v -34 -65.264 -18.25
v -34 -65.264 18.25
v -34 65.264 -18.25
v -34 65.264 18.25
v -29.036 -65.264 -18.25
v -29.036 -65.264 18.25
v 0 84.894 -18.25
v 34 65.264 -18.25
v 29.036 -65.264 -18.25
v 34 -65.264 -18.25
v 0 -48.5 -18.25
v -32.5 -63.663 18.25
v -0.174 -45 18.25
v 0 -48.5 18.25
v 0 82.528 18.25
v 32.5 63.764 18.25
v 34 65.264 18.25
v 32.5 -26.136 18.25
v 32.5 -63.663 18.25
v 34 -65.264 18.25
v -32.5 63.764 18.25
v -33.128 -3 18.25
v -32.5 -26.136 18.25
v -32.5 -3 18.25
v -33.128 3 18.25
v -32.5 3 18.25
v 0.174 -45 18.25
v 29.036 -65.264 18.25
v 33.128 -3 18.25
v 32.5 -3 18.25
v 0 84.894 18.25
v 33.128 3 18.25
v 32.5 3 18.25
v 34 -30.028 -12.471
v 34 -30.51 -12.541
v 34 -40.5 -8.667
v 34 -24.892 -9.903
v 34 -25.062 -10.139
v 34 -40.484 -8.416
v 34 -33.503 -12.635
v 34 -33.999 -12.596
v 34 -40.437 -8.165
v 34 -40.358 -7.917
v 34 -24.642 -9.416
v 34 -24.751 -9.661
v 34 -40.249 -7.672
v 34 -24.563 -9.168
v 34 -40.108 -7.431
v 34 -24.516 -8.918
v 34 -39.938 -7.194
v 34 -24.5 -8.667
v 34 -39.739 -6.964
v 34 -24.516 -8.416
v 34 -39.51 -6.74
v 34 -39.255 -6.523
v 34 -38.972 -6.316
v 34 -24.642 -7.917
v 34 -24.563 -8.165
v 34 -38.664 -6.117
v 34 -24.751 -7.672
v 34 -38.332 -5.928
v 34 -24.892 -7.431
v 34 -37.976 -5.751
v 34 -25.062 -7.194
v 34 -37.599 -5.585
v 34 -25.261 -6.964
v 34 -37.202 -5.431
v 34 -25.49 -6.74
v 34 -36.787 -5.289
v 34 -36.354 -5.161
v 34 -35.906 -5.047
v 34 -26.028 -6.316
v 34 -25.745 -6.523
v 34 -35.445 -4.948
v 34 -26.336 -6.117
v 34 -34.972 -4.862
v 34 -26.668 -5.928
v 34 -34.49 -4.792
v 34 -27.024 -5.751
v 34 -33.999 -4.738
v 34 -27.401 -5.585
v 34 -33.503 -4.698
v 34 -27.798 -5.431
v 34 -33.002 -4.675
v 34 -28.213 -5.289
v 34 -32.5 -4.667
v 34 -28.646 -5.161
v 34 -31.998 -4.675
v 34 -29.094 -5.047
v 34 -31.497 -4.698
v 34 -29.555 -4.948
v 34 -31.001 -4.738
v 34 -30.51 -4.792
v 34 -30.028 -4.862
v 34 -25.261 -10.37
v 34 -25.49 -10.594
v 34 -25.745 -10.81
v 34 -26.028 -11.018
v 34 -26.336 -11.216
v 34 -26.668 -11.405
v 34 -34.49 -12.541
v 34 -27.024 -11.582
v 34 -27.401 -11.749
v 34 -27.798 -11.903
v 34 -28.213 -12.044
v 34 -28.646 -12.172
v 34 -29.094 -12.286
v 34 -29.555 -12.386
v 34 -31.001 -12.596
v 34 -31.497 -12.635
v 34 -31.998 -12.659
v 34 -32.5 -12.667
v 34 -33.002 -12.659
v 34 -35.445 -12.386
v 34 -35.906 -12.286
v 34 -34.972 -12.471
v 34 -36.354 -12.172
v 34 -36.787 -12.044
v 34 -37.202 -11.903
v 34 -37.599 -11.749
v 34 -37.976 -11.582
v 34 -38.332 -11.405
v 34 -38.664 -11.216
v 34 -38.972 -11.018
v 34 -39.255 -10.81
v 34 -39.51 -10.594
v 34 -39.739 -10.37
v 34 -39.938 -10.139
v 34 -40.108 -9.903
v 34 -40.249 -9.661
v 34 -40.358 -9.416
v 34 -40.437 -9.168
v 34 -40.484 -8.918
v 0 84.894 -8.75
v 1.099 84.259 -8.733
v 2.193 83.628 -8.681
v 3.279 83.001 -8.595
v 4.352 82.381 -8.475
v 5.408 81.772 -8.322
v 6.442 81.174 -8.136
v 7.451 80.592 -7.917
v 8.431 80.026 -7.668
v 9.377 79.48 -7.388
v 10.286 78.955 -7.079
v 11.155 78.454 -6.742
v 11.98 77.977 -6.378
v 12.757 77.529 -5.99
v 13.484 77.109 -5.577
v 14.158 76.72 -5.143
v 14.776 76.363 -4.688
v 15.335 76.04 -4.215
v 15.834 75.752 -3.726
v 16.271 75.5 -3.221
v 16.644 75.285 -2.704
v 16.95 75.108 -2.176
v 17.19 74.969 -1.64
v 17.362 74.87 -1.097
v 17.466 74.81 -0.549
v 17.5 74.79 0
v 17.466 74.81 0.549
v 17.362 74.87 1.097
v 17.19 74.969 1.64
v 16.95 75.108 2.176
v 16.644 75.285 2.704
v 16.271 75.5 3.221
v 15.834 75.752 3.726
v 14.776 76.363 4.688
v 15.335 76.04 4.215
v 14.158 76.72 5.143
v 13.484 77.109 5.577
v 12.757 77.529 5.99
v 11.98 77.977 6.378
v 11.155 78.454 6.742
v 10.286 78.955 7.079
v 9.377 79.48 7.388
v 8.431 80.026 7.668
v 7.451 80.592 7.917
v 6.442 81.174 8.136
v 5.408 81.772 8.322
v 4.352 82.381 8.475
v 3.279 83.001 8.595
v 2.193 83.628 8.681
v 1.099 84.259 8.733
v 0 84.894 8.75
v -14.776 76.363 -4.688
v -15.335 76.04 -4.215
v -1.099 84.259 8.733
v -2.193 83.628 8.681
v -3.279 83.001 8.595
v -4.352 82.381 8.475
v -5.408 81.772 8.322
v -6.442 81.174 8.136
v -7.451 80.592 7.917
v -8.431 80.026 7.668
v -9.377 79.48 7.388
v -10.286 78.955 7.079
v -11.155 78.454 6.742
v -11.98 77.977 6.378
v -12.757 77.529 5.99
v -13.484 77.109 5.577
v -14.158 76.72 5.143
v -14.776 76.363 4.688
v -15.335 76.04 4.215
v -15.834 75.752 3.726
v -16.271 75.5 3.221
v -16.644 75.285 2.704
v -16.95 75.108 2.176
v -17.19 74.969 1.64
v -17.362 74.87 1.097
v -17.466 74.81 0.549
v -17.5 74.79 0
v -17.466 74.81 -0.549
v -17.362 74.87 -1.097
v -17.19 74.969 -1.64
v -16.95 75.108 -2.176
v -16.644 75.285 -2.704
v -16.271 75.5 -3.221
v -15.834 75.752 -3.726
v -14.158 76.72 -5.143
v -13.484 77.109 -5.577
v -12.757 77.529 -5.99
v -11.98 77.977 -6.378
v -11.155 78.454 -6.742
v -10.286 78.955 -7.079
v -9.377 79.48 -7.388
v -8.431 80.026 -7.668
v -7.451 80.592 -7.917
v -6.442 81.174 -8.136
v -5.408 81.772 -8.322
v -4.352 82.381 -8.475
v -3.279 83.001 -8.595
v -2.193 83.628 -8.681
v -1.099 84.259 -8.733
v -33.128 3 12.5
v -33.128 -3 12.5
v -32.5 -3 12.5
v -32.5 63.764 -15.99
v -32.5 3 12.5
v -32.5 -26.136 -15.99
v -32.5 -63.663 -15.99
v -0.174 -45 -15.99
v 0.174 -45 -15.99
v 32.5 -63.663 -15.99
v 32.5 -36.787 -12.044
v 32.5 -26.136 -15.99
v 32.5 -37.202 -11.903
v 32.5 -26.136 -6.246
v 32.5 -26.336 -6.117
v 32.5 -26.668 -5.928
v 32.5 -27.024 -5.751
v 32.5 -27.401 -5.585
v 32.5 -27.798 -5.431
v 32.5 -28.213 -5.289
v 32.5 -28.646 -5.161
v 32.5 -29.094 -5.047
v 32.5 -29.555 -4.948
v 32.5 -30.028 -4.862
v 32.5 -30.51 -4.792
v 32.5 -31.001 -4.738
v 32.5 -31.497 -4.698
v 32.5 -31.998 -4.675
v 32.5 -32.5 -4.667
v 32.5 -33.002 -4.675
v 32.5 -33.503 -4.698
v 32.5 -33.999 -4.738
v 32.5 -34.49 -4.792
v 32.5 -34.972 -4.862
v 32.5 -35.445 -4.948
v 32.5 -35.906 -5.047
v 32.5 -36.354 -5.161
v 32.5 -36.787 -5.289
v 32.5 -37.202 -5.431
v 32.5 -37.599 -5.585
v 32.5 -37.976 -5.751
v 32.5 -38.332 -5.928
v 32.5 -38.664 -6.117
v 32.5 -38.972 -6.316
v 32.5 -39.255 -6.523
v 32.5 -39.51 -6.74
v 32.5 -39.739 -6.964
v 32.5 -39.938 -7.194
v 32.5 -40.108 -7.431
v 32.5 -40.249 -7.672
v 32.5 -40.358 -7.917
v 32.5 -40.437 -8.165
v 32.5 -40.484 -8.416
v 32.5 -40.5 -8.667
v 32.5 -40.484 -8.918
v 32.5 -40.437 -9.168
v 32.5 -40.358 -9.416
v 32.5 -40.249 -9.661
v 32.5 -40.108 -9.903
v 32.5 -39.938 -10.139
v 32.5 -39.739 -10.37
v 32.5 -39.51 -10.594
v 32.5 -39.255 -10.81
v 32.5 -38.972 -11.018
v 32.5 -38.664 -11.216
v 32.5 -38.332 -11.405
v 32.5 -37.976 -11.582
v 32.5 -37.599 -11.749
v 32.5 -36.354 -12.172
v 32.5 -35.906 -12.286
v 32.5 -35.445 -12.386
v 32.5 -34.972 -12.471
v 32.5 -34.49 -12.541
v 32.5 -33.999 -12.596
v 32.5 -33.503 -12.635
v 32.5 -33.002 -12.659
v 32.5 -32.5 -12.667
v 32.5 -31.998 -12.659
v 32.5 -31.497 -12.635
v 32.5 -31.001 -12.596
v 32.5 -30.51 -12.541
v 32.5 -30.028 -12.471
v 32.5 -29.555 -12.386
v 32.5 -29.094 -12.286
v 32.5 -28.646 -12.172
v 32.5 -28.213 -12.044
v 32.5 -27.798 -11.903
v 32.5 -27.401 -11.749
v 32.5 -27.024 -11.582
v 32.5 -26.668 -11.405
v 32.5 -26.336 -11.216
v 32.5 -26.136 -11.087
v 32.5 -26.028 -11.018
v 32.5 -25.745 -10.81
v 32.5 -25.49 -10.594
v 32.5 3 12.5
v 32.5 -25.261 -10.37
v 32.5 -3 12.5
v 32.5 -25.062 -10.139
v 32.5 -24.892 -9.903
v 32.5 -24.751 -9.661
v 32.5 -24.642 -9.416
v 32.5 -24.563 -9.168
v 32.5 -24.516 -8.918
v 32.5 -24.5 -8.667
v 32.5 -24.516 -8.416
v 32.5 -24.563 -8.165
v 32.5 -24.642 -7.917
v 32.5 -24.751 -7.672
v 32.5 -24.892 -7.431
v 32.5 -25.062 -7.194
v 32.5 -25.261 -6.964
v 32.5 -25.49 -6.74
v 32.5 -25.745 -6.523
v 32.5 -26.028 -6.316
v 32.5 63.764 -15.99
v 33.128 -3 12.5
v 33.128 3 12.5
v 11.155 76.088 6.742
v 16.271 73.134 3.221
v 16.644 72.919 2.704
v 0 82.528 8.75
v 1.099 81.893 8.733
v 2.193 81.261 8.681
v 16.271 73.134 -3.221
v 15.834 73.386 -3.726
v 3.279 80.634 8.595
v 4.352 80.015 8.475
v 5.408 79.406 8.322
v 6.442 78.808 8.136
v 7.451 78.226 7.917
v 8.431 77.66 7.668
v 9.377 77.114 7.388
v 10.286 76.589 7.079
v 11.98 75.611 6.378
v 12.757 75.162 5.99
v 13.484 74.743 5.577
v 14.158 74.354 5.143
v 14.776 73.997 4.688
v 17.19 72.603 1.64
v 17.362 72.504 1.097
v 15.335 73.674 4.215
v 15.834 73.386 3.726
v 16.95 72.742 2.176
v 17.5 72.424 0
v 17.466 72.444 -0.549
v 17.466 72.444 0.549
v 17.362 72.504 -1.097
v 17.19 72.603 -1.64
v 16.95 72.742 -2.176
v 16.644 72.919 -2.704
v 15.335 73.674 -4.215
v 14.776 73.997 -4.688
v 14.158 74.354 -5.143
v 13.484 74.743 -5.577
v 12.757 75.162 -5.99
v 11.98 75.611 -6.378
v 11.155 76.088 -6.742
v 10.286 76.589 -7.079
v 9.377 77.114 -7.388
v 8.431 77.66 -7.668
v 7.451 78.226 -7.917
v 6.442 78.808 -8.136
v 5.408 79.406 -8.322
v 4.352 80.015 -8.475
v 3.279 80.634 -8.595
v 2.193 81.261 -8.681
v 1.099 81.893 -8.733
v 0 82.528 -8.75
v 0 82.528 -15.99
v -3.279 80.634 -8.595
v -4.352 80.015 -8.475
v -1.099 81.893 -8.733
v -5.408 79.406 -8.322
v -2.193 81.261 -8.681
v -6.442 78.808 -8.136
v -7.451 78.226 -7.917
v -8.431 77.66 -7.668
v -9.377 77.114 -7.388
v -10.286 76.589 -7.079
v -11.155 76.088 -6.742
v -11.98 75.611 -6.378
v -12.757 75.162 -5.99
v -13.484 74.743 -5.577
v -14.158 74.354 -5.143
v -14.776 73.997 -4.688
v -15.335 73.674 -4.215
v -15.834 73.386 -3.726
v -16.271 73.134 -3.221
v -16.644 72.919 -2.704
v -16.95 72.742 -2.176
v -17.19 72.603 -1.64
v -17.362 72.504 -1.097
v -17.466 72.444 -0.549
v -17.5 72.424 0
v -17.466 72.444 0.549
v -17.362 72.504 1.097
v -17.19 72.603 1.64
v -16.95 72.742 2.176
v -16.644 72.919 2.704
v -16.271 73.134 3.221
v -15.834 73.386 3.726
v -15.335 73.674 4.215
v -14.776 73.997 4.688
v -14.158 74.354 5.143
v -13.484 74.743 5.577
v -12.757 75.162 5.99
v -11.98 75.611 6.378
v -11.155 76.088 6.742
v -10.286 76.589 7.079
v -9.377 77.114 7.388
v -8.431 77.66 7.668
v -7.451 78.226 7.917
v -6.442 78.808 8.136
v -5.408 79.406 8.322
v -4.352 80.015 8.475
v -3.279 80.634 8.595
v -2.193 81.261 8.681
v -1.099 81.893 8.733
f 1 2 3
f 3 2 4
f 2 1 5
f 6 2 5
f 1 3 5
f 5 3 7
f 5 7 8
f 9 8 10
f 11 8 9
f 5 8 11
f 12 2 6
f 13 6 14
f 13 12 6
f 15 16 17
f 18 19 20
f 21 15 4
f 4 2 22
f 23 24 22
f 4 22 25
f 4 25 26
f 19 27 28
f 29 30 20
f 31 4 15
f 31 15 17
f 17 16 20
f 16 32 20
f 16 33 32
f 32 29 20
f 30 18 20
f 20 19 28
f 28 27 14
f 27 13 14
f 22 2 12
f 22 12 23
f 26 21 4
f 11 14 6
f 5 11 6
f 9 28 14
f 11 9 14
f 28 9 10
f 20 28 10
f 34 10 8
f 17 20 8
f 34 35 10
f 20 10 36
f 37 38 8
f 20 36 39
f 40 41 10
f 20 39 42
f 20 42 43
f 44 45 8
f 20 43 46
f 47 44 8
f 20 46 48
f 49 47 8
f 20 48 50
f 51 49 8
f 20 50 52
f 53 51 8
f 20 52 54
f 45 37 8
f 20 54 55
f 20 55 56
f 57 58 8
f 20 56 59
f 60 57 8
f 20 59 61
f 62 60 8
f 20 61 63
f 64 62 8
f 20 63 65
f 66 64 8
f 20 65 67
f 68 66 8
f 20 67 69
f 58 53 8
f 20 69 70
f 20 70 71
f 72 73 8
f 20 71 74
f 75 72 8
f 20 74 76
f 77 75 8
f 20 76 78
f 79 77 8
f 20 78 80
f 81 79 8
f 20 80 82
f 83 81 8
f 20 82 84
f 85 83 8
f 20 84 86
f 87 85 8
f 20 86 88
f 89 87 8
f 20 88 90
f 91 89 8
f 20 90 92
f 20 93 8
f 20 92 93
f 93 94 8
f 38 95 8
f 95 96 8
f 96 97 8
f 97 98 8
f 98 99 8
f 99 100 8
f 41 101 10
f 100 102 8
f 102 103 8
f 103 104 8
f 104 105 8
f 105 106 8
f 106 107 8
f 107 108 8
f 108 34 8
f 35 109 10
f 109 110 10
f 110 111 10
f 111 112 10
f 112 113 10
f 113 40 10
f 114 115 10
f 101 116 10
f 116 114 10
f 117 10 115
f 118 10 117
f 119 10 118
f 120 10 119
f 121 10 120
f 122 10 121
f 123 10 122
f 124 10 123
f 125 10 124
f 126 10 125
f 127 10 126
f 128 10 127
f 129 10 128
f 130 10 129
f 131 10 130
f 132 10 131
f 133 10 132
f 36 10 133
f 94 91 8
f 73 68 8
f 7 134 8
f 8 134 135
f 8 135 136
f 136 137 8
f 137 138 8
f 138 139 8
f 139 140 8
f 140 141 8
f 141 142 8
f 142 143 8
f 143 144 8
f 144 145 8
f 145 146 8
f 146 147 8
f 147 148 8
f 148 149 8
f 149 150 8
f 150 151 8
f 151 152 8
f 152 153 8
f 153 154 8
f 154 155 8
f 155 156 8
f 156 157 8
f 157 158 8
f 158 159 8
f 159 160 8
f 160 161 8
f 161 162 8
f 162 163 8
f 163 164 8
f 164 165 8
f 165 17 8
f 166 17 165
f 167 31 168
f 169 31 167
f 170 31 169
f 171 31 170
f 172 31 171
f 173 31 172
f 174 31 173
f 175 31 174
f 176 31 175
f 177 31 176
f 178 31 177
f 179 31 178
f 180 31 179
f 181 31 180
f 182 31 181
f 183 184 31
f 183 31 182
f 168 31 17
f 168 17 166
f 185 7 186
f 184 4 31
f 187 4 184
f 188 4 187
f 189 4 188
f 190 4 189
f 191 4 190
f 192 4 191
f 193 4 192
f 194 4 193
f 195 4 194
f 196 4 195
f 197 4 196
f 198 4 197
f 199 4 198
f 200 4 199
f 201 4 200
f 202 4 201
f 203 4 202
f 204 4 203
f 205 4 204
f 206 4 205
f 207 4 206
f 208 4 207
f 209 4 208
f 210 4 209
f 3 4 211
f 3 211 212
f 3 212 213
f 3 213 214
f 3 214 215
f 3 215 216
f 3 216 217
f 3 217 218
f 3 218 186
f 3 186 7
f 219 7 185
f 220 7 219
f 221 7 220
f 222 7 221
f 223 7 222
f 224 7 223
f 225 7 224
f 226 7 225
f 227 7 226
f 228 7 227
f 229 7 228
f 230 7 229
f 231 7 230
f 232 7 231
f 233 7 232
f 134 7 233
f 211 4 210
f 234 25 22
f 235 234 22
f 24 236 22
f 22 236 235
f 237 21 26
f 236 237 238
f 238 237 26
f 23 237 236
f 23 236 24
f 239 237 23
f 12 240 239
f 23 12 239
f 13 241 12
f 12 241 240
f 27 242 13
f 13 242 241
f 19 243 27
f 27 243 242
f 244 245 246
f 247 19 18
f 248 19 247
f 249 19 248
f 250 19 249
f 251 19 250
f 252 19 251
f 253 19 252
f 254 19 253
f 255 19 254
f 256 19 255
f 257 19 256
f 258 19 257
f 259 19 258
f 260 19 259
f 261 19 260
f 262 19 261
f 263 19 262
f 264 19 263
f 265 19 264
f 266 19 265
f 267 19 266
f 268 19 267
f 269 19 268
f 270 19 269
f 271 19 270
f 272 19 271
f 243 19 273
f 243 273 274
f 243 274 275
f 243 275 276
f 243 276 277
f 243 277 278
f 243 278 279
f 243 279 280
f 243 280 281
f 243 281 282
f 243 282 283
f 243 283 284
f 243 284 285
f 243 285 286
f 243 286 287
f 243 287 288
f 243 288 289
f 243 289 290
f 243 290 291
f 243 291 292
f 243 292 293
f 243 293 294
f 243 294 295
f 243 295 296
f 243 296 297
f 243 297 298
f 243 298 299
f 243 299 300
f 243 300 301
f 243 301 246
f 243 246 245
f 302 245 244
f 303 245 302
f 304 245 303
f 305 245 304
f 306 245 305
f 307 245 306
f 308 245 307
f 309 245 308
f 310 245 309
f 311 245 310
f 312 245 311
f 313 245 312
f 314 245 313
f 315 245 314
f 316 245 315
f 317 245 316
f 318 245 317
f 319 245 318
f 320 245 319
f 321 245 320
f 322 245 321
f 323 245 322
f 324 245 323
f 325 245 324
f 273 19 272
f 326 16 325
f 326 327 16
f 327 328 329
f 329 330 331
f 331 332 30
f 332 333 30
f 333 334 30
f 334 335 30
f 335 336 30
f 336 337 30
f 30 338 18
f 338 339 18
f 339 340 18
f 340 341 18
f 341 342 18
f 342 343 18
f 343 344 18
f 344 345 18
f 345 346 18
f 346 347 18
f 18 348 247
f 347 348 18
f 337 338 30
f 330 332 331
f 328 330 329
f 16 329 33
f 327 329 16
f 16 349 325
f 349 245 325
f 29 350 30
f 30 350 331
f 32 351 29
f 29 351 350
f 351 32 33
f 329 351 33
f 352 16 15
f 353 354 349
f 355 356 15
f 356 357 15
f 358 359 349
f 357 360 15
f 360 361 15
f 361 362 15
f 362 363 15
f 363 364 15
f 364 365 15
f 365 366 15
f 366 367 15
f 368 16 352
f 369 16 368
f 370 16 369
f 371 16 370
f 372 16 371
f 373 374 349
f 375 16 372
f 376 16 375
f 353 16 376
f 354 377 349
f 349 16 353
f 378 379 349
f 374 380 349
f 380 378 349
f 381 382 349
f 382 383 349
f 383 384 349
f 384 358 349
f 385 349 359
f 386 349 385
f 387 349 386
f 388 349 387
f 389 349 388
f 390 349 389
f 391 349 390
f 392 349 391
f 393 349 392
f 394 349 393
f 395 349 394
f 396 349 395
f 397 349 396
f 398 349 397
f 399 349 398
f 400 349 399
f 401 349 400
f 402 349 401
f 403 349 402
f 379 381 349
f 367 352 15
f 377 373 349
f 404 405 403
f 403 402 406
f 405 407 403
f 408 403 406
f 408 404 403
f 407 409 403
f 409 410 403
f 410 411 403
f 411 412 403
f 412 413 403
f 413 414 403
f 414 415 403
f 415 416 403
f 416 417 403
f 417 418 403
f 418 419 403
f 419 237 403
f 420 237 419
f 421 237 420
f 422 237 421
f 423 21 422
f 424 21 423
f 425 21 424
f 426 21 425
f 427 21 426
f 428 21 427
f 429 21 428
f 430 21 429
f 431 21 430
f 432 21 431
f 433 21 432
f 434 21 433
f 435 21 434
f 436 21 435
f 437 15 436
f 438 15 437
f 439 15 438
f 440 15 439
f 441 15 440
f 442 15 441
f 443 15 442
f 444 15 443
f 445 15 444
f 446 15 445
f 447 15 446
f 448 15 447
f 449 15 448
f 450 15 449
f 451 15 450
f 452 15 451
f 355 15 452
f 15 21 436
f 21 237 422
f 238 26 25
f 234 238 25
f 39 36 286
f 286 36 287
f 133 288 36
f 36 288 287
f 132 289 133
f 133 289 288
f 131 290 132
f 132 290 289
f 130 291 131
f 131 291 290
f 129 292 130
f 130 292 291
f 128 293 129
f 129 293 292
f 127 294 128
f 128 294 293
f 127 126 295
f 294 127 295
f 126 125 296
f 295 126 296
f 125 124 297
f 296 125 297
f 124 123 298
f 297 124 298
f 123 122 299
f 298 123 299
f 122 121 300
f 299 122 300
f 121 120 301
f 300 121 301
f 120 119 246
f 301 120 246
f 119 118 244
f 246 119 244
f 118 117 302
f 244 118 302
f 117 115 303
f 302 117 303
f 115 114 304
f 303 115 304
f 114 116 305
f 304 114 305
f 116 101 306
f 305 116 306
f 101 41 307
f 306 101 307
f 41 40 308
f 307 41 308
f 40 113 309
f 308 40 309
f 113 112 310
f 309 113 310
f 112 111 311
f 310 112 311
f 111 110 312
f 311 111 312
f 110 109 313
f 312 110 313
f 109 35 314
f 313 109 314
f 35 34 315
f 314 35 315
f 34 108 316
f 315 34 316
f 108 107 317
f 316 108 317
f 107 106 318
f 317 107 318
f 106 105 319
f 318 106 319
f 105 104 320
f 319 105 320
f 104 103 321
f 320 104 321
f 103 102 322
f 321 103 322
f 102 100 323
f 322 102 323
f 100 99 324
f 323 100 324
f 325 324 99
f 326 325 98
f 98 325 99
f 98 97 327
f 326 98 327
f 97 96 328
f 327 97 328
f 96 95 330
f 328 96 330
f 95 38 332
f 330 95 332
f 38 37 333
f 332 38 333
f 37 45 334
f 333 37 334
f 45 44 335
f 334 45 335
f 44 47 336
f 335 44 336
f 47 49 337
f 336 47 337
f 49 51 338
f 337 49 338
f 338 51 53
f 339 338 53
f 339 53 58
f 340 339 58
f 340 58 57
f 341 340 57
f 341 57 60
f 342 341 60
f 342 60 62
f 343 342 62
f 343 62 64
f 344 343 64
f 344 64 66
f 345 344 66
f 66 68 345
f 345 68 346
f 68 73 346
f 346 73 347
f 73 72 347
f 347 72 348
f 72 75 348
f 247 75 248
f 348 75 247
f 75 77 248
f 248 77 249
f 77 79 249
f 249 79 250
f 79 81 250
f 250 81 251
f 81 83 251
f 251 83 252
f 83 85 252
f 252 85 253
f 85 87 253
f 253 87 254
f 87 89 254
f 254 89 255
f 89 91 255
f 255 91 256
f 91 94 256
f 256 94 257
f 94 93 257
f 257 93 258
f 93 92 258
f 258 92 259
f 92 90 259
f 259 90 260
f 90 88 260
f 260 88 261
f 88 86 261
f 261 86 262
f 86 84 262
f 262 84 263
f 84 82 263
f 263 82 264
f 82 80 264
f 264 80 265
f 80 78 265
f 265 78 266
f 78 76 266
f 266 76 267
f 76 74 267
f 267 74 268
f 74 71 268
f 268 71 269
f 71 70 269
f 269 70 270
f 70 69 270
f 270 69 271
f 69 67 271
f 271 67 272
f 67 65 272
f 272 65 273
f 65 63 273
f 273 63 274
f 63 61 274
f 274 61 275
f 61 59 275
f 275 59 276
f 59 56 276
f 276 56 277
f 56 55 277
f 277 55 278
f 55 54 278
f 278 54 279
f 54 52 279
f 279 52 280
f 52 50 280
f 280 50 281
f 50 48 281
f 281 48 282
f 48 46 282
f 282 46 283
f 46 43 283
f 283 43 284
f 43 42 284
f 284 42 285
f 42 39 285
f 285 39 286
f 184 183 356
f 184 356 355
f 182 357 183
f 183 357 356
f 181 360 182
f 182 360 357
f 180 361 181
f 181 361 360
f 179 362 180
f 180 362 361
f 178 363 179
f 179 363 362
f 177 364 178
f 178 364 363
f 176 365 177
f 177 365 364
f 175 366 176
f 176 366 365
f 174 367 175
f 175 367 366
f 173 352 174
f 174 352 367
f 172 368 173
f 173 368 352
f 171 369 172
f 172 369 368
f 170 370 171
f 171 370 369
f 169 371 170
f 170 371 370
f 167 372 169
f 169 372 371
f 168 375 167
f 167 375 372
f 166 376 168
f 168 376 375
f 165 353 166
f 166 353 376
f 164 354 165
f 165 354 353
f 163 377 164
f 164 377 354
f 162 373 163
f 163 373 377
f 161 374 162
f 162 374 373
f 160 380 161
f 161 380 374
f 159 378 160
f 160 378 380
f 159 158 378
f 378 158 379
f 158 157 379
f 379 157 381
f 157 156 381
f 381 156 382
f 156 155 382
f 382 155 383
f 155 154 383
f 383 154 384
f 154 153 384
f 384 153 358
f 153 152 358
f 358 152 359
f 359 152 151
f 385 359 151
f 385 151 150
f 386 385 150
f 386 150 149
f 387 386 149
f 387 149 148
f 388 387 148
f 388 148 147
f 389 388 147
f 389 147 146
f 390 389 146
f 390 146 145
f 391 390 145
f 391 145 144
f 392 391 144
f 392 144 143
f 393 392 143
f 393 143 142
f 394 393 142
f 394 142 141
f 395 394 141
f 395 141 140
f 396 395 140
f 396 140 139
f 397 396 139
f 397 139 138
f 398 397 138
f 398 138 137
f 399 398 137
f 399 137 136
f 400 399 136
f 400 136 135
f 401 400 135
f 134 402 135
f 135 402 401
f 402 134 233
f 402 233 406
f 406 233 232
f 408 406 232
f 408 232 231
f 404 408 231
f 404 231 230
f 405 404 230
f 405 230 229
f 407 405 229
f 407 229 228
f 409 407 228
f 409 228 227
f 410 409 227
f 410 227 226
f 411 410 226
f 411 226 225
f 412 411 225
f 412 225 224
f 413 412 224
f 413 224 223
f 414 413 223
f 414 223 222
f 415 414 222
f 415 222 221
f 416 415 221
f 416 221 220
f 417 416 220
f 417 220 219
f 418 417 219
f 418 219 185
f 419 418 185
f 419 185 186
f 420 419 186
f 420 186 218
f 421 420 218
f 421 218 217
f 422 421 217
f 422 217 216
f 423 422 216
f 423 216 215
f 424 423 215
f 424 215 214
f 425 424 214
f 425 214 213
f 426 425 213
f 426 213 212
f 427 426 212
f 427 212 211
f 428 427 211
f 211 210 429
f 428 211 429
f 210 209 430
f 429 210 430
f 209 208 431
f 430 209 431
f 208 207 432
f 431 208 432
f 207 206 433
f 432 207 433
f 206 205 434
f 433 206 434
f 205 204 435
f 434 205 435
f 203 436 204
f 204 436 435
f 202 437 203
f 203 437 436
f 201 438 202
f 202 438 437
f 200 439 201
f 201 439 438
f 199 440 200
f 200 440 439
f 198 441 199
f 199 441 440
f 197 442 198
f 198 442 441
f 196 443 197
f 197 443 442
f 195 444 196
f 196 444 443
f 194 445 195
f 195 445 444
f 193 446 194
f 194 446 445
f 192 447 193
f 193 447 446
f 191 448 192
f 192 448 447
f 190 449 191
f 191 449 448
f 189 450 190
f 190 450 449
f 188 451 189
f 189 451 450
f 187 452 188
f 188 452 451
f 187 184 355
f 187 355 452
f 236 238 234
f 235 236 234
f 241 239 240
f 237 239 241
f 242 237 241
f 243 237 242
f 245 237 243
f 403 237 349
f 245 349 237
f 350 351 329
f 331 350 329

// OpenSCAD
$fn = 100;

// Functions for calculating the half-hexagons
function edge_length(width) = (width/2) / cos(30); // CAH
function point_height(width) = (width/2) * tan(30); // TOA
function leg(width) = edge_length(width) * sqrt(1/2);
function x_offset(width) = (width/2) - (leg(width) * cos(15));
function y_offset(width, length) = (length/2) - (leg(width) * sin(15));

//function x_offset2(width) = (width/2) + (leg(width) * sin(15));
function y_offset2(width, length) = (length/2) + (leg(width) * cos(15)) - point_height(w) + 2; // +2 is arbitrary, should fix.

// Core size variables
scaling = 1;
h = (35) * scaling;
w = (65) * scaling;
l = (90 + (point_height(w)) * 2) * scaling;// 90 = Pi, 2x point height to compensate for upward shift of center block.

// Values for wall thickness
w_pad = 3;
l_pad = 3;
h_pad = 1.5;

W = w + w_pad;
L = l + l_pad;
H = h + h_pad;
btm = W*0.9; // The ratio of the bottom cutout to overall width

difference(){ // Between the exterior and interior
// The exterior shape
	difference(){ // For the btm (bottom) cutout
		union(){
			cube([W, L, H], center=true); // Center Cube
			translate([x_offset(W),y_offset(W,L),0]){
				rotate([0,0,-30]) cube([edge_length(W),edge_length(W),H], center=true);
			}
			translate([-x_offset(W),y_offset(W,L),0]){
				rotate([0,0,30]) cube([edge_length(W),edge_length(W),H], center=true);
			}
		}
		translate([-x_offset(btm),-y_offset2(btm,L),0]){
			rotate([0,0,30]) cube([edge_length(btm),edge_length(btm),H], center=true);
		}
		translate([x_offset(btm),-y_offset2(btm,L),0]){
			rotate([0,0,-30]) cube([edge_length(btm),edge_length(btm),H], center=true);
		}
	}

	// The interior cutout
	translate([0,0,h_pad+.01]){
		union(){
			translate([0,point_height(w)/2,0]){
				cube([w, l - point_height(w), h], center=true); // Center Cube
			}
			translate([x_offset(w),y_offset(w,l),0]){
				rotate([0,0,-30]) cube([edge_length(w),edge_length(w),h], center=true);
			}
			translate([-x_offset(w),y_offset(w,l),0]){
				rotate([0,0,30]) cube([edge_length(w),edge_length(w),h], center=true);
			}
			translate([-w/3,-l/3.3,0]){
				difference(){
					rotate([0,0,30]){
						cube([w, w/2, h], center=true);
					}
					translate([-w/3,0,0]){
						cube([w/3, w, h], center=true);
					}
				}
			}
			translate([w/3,-l/3.3,0]){
				difference(){
					rotate([0,0,-30]){
						cube([w, w/2, h], center=true);
					}
					translate([w/3,0,0]){
						cube([w/3, w, h], center=true);
					}
				}
			}
		}
	}
	rotate([90,0,90]){ // Charger hole
		translate([-w/2,(-h/3)+3,w/2]){
			scale([2,1,1]) cylinder(20, r=(8/2), center=true);
		}
	}
	translate([0,(L+point_height(w))/2,0]){ // Dongle hole
		rotate([90,0,0]){
			scale([2,1,1]) cylinder(75, r=(35/4), center=true);
		}
	}
	translate([-W/2.15,0,h/2]){cube([3, 6, 10], center=true);} // Lid grooves
	translate([W/2.15,0,h/2]){cube([3, 6, 10], center=true);}
}
